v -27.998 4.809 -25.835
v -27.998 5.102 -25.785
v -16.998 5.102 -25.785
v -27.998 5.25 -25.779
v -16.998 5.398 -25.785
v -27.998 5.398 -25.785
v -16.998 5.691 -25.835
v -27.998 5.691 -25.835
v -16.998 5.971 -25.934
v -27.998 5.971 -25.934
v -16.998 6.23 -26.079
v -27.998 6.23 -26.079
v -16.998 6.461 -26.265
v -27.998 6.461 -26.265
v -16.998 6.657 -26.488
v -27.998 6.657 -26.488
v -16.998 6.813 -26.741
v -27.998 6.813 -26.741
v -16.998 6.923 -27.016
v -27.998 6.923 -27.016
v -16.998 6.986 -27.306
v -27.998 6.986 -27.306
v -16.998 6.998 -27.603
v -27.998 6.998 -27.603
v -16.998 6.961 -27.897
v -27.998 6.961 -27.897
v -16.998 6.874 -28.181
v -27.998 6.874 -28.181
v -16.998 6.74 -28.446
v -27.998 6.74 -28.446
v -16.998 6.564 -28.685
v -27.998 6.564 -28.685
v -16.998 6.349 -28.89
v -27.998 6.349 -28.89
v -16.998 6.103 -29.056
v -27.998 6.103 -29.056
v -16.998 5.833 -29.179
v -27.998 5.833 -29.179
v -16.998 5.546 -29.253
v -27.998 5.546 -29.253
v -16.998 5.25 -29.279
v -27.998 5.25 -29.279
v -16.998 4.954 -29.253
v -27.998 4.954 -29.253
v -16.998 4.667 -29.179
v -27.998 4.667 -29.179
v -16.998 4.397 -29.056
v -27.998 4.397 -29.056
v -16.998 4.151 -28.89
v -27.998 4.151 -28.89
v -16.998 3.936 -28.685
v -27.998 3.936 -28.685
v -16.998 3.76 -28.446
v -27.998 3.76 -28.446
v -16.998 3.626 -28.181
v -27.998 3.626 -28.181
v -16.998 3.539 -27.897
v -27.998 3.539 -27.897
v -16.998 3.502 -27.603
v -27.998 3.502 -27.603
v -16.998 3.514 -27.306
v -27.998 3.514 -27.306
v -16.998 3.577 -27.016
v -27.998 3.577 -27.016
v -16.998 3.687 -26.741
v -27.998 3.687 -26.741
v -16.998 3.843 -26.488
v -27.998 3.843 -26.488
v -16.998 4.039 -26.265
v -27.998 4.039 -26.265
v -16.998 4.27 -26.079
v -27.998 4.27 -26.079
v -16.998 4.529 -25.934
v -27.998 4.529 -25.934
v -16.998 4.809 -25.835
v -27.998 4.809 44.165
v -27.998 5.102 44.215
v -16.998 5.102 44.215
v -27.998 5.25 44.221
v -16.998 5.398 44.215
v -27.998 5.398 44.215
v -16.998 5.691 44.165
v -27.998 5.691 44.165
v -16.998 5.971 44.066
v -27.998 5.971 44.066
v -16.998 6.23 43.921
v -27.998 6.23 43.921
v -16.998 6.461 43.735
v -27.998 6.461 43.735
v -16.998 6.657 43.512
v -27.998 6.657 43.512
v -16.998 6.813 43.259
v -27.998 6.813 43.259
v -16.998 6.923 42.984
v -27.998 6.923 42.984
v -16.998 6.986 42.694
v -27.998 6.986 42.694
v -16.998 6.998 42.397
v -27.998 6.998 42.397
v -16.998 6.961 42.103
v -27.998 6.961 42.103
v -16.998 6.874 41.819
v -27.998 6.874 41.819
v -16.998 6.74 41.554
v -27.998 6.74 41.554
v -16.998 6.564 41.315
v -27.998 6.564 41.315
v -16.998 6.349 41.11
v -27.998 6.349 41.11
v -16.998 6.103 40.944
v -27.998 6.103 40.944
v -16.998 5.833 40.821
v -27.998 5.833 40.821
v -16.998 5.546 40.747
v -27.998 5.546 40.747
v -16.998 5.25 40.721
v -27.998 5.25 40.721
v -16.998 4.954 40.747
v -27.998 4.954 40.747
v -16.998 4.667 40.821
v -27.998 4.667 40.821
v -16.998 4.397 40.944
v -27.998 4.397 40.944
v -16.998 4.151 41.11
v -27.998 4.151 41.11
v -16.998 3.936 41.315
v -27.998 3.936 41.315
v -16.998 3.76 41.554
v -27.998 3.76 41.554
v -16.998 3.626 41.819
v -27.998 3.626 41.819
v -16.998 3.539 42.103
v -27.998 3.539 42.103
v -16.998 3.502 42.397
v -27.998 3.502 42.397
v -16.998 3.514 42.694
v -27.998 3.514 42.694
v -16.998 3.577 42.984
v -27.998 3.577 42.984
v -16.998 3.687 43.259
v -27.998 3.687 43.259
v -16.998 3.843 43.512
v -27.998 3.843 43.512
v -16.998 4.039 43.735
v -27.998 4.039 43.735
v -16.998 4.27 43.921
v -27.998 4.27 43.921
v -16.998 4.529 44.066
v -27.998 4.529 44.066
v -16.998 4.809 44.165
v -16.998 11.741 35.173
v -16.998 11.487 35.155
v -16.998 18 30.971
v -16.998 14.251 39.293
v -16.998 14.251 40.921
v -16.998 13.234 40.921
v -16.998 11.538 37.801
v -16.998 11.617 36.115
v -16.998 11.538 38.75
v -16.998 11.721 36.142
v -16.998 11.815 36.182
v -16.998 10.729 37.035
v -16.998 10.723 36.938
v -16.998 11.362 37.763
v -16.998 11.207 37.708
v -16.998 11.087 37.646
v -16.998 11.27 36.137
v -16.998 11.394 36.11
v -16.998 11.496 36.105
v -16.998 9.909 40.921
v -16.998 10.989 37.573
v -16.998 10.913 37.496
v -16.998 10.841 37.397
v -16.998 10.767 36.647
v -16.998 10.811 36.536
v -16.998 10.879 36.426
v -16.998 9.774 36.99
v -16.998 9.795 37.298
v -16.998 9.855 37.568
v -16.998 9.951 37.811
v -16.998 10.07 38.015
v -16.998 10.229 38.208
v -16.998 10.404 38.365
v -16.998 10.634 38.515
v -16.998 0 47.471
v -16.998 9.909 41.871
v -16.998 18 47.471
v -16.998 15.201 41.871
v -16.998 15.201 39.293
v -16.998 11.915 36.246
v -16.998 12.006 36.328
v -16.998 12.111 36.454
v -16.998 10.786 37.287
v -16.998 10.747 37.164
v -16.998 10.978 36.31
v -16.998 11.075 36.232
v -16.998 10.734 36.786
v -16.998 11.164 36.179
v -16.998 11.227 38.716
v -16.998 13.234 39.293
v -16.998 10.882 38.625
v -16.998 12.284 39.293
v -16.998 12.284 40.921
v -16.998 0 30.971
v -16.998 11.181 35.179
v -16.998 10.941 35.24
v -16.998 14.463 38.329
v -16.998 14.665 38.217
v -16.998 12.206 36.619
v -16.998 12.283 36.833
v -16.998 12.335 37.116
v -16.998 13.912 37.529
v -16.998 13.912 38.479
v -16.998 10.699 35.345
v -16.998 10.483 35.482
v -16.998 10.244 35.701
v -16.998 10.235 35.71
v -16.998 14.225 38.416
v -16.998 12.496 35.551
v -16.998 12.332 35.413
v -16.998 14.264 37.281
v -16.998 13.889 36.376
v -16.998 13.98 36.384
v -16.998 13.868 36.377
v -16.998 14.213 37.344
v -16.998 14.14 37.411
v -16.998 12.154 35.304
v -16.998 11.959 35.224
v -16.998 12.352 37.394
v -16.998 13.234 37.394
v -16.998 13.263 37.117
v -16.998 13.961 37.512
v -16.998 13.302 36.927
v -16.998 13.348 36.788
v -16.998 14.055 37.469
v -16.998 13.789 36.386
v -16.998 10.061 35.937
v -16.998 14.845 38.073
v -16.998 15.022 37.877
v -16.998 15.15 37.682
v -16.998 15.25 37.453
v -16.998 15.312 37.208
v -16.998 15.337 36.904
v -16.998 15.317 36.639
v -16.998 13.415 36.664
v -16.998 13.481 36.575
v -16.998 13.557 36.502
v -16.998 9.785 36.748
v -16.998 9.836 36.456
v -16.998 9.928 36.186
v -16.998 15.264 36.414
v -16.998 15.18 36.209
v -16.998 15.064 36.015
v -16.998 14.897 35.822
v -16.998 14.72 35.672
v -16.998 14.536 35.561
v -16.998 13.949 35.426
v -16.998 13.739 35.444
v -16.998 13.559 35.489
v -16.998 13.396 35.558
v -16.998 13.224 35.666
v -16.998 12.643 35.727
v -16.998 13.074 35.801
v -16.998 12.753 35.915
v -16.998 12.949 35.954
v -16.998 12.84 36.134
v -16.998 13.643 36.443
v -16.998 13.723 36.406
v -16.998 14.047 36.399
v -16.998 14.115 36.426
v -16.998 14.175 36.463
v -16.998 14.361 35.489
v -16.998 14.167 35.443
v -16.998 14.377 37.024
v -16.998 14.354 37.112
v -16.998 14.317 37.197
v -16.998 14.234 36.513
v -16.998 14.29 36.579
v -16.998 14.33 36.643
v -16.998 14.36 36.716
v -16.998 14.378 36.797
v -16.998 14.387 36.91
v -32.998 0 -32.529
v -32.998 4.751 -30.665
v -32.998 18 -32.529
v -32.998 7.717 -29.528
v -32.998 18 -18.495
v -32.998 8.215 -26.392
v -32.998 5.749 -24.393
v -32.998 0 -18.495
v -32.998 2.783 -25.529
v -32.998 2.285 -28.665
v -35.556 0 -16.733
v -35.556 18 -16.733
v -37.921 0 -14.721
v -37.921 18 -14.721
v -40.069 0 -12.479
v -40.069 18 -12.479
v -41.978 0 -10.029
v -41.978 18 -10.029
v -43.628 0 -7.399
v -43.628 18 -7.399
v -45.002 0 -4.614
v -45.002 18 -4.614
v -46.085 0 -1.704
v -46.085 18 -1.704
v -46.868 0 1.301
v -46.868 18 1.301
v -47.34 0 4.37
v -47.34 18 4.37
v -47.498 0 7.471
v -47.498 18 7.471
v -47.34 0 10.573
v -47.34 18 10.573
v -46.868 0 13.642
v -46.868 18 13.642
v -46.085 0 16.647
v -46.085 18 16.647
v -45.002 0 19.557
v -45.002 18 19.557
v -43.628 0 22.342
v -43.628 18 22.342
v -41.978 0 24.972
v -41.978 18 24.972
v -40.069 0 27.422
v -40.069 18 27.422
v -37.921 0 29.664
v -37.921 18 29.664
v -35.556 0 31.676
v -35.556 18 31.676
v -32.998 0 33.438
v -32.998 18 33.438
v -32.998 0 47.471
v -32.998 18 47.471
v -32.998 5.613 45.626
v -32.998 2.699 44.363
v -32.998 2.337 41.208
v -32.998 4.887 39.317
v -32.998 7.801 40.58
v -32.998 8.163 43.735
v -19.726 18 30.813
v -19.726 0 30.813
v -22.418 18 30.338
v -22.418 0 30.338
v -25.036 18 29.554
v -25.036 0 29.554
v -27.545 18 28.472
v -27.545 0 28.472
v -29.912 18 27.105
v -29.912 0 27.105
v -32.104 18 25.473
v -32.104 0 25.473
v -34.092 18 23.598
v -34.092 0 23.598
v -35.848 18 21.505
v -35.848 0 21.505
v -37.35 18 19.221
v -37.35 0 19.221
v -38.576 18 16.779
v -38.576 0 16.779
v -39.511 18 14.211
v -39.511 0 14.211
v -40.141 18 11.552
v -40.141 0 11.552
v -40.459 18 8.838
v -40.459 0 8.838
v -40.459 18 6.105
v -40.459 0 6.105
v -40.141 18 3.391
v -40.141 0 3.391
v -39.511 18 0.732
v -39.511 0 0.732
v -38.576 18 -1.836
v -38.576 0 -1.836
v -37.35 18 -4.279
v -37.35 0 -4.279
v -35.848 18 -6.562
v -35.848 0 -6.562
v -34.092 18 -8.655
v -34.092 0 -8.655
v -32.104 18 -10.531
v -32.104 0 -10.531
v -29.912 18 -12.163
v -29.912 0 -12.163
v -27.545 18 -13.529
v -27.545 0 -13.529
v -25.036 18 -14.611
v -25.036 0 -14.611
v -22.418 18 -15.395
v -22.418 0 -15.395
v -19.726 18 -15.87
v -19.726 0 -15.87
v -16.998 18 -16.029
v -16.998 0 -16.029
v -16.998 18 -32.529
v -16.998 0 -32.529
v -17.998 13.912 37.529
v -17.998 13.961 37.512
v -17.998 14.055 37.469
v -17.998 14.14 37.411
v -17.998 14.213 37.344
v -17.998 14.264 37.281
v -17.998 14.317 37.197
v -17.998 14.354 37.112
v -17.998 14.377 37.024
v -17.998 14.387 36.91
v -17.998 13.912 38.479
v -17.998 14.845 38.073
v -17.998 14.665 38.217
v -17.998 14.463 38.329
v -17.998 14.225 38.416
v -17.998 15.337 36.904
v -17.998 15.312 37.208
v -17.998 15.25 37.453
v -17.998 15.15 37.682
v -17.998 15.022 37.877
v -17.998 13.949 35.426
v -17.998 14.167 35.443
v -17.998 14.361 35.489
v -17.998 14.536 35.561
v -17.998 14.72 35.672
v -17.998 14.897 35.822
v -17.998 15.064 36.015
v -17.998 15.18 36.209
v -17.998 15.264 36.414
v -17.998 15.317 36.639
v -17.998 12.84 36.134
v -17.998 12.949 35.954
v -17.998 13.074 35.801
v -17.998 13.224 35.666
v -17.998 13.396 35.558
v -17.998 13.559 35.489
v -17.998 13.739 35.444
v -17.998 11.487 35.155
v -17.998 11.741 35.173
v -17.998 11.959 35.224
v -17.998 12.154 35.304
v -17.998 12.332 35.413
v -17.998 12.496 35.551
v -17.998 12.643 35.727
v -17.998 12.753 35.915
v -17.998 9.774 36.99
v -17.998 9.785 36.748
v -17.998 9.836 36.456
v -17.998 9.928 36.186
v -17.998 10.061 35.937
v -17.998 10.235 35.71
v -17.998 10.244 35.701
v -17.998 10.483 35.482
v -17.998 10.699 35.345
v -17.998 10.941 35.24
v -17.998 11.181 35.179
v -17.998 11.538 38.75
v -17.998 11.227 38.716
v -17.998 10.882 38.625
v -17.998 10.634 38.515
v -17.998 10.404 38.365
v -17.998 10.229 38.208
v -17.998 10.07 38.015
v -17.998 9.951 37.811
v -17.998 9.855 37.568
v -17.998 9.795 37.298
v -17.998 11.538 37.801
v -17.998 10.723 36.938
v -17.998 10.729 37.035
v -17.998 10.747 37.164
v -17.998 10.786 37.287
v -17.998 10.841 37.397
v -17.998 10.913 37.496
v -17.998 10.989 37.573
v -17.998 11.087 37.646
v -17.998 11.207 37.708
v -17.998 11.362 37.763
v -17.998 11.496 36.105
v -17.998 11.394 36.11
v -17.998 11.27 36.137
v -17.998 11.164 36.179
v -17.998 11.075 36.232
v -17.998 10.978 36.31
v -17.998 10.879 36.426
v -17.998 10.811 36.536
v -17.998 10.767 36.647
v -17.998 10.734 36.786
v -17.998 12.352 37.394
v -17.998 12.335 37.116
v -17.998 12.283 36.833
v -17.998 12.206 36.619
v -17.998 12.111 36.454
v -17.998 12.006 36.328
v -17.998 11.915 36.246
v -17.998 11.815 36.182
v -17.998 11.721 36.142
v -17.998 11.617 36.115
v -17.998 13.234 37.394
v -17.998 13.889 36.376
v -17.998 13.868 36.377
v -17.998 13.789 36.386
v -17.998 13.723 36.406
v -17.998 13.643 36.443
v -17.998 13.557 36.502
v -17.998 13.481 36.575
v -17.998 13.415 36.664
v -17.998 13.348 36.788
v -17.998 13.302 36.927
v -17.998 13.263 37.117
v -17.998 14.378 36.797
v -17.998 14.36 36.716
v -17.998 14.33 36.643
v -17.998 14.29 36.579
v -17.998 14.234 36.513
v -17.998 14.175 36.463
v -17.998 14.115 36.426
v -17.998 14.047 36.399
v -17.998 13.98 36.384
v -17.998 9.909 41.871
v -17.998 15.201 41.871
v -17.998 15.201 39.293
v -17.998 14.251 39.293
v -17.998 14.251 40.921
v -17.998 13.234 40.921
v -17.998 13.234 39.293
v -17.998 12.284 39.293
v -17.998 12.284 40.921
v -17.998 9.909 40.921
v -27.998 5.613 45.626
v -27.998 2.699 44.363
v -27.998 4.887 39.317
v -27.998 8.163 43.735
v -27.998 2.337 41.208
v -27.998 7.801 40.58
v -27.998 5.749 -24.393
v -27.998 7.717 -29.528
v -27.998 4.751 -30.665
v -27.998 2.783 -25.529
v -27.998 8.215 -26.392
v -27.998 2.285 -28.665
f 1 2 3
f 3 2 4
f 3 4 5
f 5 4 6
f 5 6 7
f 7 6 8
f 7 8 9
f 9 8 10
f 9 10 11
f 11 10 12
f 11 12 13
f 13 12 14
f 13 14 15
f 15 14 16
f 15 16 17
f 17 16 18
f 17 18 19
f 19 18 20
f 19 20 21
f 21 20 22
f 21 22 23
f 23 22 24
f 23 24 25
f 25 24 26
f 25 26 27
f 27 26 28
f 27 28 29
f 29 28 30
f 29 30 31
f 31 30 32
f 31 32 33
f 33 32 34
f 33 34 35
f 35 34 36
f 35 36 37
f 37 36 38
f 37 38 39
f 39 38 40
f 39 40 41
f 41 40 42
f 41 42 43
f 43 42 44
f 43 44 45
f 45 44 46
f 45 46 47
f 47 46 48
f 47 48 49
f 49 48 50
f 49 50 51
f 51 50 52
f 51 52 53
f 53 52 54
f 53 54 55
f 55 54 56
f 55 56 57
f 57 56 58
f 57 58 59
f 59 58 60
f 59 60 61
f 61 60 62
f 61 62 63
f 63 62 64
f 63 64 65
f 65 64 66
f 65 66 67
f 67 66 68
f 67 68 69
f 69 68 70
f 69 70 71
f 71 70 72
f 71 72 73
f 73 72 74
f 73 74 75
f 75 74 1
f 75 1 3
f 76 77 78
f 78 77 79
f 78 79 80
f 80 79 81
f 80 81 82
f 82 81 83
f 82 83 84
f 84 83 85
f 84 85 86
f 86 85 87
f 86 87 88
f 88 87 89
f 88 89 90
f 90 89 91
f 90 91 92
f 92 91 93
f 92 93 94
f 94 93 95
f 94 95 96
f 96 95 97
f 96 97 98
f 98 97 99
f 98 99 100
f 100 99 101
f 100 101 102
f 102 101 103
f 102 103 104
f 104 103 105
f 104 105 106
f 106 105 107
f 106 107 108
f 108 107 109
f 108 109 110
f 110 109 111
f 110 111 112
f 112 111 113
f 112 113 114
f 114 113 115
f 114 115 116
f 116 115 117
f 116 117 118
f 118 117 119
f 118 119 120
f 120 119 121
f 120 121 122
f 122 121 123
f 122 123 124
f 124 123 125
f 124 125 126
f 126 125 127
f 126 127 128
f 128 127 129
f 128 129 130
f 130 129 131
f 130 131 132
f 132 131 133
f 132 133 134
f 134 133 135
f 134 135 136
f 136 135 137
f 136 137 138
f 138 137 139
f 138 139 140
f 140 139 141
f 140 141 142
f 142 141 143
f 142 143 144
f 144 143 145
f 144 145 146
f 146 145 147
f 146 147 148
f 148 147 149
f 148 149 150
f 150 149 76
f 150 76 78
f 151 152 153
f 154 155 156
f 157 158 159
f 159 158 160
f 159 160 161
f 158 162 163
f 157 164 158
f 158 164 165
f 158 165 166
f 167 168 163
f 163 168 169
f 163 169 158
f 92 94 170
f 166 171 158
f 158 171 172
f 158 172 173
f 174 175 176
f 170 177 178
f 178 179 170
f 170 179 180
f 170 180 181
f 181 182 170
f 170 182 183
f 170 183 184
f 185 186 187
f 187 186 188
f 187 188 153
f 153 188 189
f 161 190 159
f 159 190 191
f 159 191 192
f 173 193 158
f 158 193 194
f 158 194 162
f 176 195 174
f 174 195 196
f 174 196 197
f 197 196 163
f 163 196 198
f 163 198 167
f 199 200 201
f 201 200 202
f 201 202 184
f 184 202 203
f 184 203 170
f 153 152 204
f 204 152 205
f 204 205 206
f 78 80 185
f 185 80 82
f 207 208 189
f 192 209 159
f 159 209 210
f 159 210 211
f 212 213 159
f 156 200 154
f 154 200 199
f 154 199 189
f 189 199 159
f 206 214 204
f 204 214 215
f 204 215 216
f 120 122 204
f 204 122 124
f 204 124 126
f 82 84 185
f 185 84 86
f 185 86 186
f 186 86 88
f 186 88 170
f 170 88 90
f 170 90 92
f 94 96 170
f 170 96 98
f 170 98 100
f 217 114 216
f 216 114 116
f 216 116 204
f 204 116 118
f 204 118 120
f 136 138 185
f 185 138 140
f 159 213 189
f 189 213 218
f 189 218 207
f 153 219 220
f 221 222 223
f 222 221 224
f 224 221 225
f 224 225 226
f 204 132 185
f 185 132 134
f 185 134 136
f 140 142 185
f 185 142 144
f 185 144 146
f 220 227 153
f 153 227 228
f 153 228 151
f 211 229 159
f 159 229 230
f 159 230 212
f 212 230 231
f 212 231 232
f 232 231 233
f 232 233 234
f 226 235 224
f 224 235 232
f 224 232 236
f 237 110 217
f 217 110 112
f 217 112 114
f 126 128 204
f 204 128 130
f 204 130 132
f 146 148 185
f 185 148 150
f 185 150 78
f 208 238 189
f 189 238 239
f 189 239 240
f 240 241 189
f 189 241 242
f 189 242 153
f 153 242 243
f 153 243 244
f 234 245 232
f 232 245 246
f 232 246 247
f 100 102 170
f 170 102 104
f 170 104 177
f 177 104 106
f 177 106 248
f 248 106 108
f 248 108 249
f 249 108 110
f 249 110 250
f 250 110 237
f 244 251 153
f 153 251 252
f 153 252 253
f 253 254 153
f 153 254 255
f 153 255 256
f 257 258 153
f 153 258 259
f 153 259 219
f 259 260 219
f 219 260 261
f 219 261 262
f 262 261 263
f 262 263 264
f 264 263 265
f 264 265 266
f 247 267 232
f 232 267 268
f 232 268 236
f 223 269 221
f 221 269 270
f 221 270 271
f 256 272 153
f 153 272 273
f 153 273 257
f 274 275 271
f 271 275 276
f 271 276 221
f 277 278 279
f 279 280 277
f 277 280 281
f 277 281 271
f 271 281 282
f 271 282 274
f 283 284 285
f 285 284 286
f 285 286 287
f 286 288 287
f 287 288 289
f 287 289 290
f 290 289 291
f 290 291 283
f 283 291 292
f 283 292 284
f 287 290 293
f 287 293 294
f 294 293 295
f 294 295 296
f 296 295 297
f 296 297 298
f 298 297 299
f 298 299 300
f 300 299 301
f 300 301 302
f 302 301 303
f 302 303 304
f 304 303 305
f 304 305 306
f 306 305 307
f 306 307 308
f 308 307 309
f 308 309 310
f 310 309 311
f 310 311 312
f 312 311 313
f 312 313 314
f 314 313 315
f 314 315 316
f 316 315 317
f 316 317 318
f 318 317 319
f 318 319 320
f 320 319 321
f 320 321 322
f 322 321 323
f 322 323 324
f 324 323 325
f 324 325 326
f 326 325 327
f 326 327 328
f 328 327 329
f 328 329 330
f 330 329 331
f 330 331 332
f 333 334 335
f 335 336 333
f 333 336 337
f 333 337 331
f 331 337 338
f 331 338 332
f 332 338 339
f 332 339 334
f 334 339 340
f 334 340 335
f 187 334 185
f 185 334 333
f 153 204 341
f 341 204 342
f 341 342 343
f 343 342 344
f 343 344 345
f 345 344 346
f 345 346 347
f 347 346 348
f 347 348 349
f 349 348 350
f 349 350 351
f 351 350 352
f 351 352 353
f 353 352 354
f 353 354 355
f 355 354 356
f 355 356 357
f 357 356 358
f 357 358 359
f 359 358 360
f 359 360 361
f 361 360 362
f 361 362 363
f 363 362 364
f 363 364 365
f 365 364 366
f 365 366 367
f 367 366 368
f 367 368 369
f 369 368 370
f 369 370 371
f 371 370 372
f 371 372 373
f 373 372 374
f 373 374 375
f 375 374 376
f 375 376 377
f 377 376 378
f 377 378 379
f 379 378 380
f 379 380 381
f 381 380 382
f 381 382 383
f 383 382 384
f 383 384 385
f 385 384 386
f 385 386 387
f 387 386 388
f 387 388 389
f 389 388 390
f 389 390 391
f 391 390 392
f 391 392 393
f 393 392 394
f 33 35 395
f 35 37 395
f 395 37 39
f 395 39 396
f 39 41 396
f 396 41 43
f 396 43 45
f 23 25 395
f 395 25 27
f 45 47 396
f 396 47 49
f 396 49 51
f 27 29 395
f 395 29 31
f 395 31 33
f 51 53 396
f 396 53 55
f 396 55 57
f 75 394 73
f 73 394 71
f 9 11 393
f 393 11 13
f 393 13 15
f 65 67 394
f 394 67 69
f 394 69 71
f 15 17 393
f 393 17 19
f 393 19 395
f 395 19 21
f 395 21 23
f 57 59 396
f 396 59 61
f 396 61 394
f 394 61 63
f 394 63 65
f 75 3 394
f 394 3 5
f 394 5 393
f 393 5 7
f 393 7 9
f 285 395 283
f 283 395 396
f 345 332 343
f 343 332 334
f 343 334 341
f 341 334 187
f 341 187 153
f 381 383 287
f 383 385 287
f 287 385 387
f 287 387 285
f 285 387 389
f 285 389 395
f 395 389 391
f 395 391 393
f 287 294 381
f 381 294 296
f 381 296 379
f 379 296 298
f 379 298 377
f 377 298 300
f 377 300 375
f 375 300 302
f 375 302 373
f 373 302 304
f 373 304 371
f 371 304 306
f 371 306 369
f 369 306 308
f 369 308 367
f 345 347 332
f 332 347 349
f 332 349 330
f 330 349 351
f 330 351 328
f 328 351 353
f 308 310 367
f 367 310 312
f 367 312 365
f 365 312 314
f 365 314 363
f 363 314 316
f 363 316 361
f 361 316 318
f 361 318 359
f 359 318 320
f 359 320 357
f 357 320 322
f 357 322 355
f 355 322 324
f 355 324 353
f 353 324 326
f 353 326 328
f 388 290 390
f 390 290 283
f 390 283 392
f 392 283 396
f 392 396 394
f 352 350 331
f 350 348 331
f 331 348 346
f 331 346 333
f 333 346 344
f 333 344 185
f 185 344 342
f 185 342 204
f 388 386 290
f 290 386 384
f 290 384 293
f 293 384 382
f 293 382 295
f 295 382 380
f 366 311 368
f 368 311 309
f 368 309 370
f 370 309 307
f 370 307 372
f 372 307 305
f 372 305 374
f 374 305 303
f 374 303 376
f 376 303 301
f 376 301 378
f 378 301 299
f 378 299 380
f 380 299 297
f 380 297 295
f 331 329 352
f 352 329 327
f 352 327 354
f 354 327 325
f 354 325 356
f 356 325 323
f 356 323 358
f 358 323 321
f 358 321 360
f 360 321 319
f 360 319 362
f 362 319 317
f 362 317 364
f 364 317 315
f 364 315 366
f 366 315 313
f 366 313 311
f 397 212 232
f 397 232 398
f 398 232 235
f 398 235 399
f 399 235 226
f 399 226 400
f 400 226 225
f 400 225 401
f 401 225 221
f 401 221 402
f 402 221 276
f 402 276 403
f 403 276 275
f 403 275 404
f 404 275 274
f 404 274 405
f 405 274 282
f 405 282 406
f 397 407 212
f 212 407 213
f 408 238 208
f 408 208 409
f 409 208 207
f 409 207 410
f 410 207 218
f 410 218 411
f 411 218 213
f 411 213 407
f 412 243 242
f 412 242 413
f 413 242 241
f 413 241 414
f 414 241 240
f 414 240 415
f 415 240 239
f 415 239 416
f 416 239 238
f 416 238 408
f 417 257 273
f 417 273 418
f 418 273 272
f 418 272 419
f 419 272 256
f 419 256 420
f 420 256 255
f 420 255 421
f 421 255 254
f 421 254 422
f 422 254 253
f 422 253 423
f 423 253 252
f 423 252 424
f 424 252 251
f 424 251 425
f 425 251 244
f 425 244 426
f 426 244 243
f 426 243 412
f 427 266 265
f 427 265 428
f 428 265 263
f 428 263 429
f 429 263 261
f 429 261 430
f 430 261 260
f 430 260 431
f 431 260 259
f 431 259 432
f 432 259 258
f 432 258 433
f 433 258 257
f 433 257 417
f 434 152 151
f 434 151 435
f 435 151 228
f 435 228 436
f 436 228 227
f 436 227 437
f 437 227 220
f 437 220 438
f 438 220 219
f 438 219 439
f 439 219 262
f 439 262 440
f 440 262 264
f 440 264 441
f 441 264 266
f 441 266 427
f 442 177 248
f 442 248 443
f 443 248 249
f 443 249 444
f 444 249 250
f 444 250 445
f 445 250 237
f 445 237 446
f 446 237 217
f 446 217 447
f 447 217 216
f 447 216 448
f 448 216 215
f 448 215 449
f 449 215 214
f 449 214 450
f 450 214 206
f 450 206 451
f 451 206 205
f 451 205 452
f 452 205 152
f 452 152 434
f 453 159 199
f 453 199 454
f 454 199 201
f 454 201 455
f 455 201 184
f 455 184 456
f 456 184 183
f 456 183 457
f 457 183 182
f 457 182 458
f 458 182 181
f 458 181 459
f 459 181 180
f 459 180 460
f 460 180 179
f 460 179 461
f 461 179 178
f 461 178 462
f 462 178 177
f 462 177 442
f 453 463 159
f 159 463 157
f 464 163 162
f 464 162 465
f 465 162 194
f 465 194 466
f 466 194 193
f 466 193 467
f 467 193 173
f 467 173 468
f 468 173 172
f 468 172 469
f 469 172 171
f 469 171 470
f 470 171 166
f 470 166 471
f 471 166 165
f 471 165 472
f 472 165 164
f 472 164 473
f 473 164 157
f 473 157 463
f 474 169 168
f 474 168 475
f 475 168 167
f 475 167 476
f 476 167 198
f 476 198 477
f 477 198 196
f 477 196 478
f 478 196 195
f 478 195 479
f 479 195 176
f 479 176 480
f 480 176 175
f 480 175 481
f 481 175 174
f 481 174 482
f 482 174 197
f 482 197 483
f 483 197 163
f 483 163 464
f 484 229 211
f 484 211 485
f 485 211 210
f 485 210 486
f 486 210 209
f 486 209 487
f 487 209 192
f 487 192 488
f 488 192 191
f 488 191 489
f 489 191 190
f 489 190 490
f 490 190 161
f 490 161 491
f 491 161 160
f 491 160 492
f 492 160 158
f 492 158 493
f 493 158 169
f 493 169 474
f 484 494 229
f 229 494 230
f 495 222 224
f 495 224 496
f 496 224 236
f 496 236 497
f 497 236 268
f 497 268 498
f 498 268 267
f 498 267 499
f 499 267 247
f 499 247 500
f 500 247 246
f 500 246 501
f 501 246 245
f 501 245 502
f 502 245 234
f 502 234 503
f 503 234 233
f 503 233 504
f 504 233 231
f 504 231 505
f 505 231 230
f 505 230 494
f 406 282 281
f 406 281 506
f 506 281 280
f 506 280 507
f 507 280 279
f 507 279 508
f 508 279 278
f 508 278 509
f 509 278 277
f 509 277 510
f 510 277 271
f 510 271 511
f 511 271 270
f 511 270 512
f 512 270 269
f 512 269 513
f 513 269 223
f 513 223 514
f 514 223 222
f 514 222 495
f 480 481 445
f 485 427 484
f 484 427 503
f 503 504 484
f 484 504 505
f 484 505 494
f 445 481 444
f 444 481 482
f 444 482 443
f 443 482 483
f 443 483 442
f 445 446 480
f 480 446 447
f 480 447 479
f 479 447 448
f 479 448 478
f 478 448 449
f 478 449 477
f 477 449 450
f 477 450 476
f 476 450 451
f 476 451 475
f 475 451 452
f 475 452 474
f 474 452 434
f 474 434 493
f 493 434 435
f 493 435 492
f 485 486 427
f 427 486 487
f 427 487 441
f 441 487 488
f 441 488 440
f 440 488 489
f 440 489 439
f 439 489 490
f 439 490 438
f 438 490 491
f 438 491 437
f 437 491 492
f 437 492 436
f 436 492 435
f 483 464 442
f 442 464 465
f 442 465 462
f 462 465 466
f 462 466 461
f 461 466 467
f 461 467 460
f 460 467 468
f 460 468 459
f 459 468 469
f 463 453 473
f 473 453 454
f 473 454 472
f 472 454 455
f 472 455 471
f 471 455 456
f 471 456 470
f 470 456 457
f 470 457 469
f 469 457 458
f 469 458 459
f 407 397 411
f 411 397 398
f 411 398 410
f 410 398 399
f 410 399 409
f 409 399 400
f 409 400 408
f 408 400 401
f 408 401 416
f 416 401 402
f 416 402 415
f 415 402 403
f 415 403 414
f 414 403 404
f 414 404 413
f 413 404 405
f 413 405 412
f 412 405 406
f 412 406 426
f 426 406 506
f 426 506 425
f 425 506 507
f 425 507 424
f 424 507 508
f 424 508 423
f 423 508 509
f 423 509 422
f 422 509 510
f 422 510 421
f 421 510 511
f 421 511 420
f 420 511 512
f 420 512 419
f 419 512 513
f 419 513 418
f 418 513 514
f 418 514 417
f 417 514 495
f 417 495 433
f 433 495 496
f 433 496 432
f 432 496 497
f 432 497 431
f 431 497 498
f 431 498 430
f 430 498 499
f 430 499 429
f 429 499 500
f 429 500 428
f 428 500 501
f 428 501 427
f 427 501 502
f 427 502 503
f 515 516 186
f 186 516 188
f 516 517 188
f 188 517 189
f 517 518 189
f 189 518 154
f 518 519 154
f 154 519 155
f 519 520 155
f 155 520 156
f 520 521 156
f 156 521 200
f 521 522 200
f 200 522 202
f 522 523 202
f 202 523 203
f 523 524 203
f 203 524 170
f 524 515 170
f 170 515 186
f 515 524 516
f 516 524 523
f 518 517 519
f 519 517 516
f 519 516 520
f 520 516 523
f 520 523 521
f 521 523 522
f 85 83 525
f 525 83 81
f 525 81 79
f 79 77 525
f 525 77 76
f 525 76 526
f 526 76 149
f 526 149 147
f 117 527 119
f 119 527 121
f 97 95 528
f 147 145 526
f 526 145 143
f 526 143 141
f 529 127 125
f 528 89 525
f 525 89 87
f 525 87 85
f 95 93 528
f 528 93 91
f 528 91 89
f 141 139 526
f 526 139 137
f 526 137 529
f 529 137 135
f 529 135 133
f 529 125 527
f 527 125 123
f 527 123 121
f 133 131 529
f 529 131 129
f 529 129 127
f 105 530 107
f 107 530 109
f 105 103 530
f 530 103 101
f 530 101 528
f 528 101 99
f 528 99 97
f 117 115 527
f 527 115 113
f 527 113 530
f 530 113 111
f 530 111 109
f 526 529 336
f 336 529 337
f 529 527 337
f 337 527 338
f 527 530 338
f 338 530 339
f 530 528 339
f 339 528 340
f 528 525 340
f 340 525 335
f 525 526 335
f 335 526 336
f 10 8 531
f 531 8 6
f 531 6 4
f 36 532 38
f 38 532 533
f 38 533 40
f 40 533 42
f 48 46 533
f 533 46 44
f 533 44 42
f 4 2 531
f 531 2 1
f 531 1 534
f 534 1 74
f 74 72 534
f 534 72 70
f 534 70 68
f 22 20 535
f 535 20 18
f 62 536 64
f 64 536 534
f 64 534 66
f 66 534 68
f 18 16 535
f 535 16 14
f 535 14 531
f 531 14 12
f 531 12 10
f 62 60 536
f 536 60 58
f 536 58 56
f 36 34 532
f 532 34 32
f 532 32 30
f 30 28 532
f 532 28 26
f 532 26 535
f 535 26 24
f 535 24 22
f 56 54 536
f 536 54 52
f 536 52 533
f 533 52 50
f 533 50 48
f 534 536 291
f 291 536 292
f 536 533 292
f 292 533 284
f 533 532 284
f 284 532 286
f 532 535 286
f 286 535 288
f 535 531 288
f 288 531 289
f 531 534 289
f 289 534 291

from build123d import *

# Parameters (mm, degrees)
BOSS_EXTRUDE1_DEPTH = 18
SKETCH2_R           = 1.75
CUT_EXTRUDE1_DEPTH  = 31.5
CUT_EXTRUDE2_DEPTH  = 1
CUT_EXTRUDE3_DEPTH  = 5


with BuildPart() as part:
    # Sketch1 → Boss-Extrude1 (new body)
    with BuildSketch(Plane(origin=(0, 0, 0), x_dir=(1, 0, 0), z_dir=(0, 1, 0))):
        with BuildLine():
            Line((-16.998275301, 32.528571429), (-32.998275301, 32.528571429))
            Line((-32.998275301, 32.528571429), (-32.998275301, 18.494895774))
            ThreePointArc((-32.998275301, 18.494895774), (-47.498275301, -7.471428571), (-32.998275301, -33.437752917))
            Line((-32.998275301, -33.437752917), (-32.998275301, -47.471428571))
            Line((-32.998275301, -47.471428571), (-16.998275301, -47.471428571))
            Line((-16.998275301, -47.471428571), (-16.998275301, -30.971428571))
            ThreePointArc((-16.998275301, -30.971428571), (-40.498275301, -7.471428571), (-16.998275301, 16.028571429))
            Line((-16.998275301, 16.028571429), (-16.998275301, 32.528571429))
        make_face()
    extrude(amount=BOSS_EXTRUDE1_DEPTH)

    # Sketch2 → Cut-Extrude1 (cut, through all)
    with BuildSketch(Plane(origin=(-16.998275301, 0, 0), x_dir=(0, 0, -1), z_dir=(1, 0, 0))):
        with Locations((-42.471428571, 5.25)):
            Circle(SKETCH2_R)
        with Locations((27.528571429, 5.25)):
            Circle(SKETCH2_R)
    extrude(amount=-CUT_EXTRUDE1_DEPTH, mode=Mode.SUBTRACT)

    # Sketch3 → Cut-Extrude2 (cut)
    with BuildSketch(Plane(origin=(-16.998275301, 0, 0), x_dir=(0, 0, -1), z_dir=(1, 0, 0))):
        Polygon((-41.871148795, 15.201025034), (-39.293157342, 15.201025034), (-39.293157342, 14.251238709), (-40.92136247, 14.251238709), (-40.92136247, 13.233610504), (-39.293157342, 13.233610504), (-39.293157342, 12.283824179), (-40.92136247, 12.283824179), (-40.92136247, 9.909358367), (-41.871148795, 9.909358367), align=None)
        with BuildLine():
            Line((-37.529268453, 13.912029308), (-38.479054777, 13.912029308))
            add(Edge.make_bspline(
                [(-38.479054777, 13.912029308), (-38.472348925, 13.959505738), (-38.459202545, 14.052580134), (-38.427745016, 14.187328674), (-38.390118416, 14.315146885), (-38.34314353, 14.435629995), (-38.288049629, 14.548992623), (-38.225396959, 14.655623774), (-38.154508221, 14.755065768), (-38.100171252, 14.814970019), (-38.073063525, 14.844855162)],
                knots=[0, 0, 0, 0, 0.000143778, 0.000281867, 0.000414671, 0.000543215, 0.000669322, 0.0007924, 0.000913902, 0.001034861, 0.001034861, 0.001034861, 0.001034861], degree=3))
            add(Edge.make_bspline(
                [(-38.073063525, 14.844855162), (-38.033964221, 14.884286443), (-37.956903602, 14.962001353), (-37.82812627, 15.061545568), (-37.693143844, 15.147694317), (-37.549249192, 15.215993668), (-37.398681424, 15.27127408), (-37.240243172, 15.308406058), (-37.074581872, 15.333043453), (-36.961538875, 15.335470322), (-36.903851118, 15.336708795)],
                knots=[0, 0, 0, 0, 0.000166428, 0.000328012, 0.000487119, 0.000645947, 0.000804887, 0.000967376, 0.001133328, 0.001306272, 0.001306272, 0.001306272, 0.001306272], degree=3))
            add(Edge.make_bspline(
                [(-36.903851118, 15.336708795), (-36.852563734, 15.335498), (-36.751743072, 15.333117822), (-36.603562067, 15.314011042), (-36.462283879, 15.280499879), (-36.326415158, 15.236684784), (-36.197954088, 15.177067025), (-36.07406541, 15.107863497), (-35.958210577, 15.022982493), (-35.850118512, 14.927075501), (-35.750815335, 14.8233427), (-35.664818348, 14.712460867), (-35.590885195, 14.597391911), (-35.529974057, 14.477179826), (-35.483141668, 14.3516212), (-35.450638602, 14.221441367), (-35.429364556, 14.08692758), (-35.427245105, 13.99550037), (-35.426170162, 13.949130336)],
                knots=[0, 0, 0, 0, 0.000153836, 0.00030241, 0.000447173, 0.000588968, 0.00072986, 0.000871333, 0.001014032, 0.001159723, 0.001304436, 0.001444171, 0.001580024, 0.001714184, 0.00184768, 0.001981114, 0.002116187, 0.002255197, 0.002255197, 0.002255197, 0.002255197], degree=3))
            add(Edge.make_bspline(
                [(-35.426170162, 13.949130336), (-35.428376009, 13.89170491), (-35.432718642, 13.778651902), (-35.468353097, 13.613190424), (-35.524130708, 13.454979724), (-35.604706892, 13.306233407), (-35.705447645, 13.167356277), (-35.829053175, 13.042991412), (-35.972002875, 12.931188942), (-36.079317119, 12.87110628), (-36.134269788, 12.840339604)],
                knots=[0, 0, 0, 0, 0.00017212, 0.000338852, 0.000505492, 0.00067385, 0.000844528, 0.001018431, 0.001198237, 0.00138694, 0.00138694, 0.00138694, 0.00138694], degree=3))
            add(Edge.make_bspline(
                [(-36.134269788, 12.840339604), (-36.096551119, 12.827955771), (-36.022435626, 12.803622094), (-35.917089364, 12.755697192), (-35.816917106, 12.703323219), (-35.723643783, 12.642478468), (-35.636341679, 12.575623232), (-35.555542998, 12.502186007), (-35.480764986, 12.422326922), (-35.413228364, 12.335606781), (-35.353286974, 12.243412505), (-35.299504756, 12.147873726), (-35.255238993, 12.047541582), (-35.21774038, 11.943561934), (-35.189191072, 11.835000267), (-35.169089807, 11.722277248), (-35.157470783, 11.605650007), (-35.155698684, 11.526635122), (-35.154802641, 11.486682085)],
                knots=[0, 0, 0, 0, 0.000119012, 0.000233852, 0.000346714, 0.000457856, 0.00056747, 0.000676282, 0.000785032, 0.000895296, 0.001005549, 0.001114686, 0.001223822, 0.001334132, 0.001445978, 0.001560132, 0.001677317, 0.001797176, 0.001797176, 0.001797176, 0.001797176], degree=3))
            add(Edge.make_bspline(
                [(-35.154802641, 11.486682085), (-35.156619041, 11.427967343), (-35.160200611, 11.31219383), (-35.182970562, 11.141671293), (-35.225364107, 10.979093204), (-35.281135164, 10.822588857), (-35.355527701, 10.674178666), (-35.443075211, 10.53045682), (-35.55068869, 10.396407552), (-35.670282595, 10.268486948), (-35.803098598, 10.152187262), (-35.947092752, 10.051360668), (-36.09909875, 9.964833512), (-36.260078289, 9.8945883), (-36.429975443, 9.840491454), (-36.608411526, 9.801387759), (-36.796136276, 9.777463472), (-36.924273105, 9.774955464), (-36.989713498, 9.773674607)],
                knots=[0, 0, 0, 0, 0.000176169, 0.00034737, 0.00051474, 0.000679386, 0.000844836, 0.001011921, 0.001183269, 0.001359492, 0.001536793, 0.001711778, 0.001885991, 0.002060677, 0.00223768, 0.002420033, 0.00260805, 0.002804296, 0.002804296, 0.002804296, 0.002804296], degree=3))
            add(Edge.make_bspline(
                [(-36.989713498, 9.773674607), (-37.051619054, 9.775025054), (-37.172667177, 9.777665676), (-37.349725391, 9.800521596), (-37.518002464, 9.837390049), (-37.677927841, 9.889359191), (-37.828882784, 9.956754287), (-37.972236212, 10.037006724), (-38.105127537, 10.134745277), (-38.229037432, 10.245557842), (-38.341217201, 10.369883248), (-38.441479496, 10.504841559), (-38.527613517, 10.650945966), (-38.599972501, 10.80757225), (-38.657990763, 10.974995181), (-38.703755398, 11.152874295), (-38.735722744, 11.341557113), (-38.745458467, 11.471374906), (-38.750422299, 11.537563496)],
                knots=[0, 0, 0, 0, 0.000185653, 0.000363021, 0.000534566, 0.000701839, 0.000866512, 0.001029812, 0.001193709, 0.001360353, 0.001527707, 0.001695195, 0.001863902, 0.002035591, 0.002211932, 0.002394731, 0.002586078, 0.002785121, 0.002785121, 0.002785121, 0.002785121], degree=3))
            Line((-38.750422299, 11.537563496), (-37.800635974, 11.537563496))
            add(Edge.make_bspline(
                [(-37.800635974, 11.537563496), (-37.794617277, 11.504283004), (-37.782894287, 11.439460519), (-37.760029312, 11.345611971), (-37.730233061, 11.258983964), (-37.695781181, 11.178806552), (-37.658567964, 11.104027033), (-37.613605499, 11.037407199), (-37.564188399, 10.977138049), (-37.492879164, 10.905489419), (-37.3909377, 10.831873443), (-37.253282951, 10.767897658), (-37.100155079, 10.730399988), (-36.993103425, 10.725825387), (-36.937772058, 10.723460932)],
                knots=[0, 0, 0, 0, 0.000101453, 0.000197607, 0.000289457, 0.000375893, 0.000459333, 0.000539595, 0.000616416, 0.00069287, 0.00084235, 0.000990791, 0.001145821, 0.001311674, 0.001311674, 0.001311674, 0.001311674], degree=3))
            add(Edge.make_bspline(
                [(-36.937772058, 10.723460932), (-36.90841128, 10.72396442), (-36.850900082, 10.724950642), (-36.766424697, 10.735881586), (-36.685949998, 10.753884861), (-36.609326097, 10.778350644), (-36.536065202, 10.809020032), (-36.467567036, 10.848566373), (-36.402435434, 10.89454464), (-36.341378437, 10.946236417), (-36.284960514, 11.002561951), (-36.238017483, 11.06493291), (-36.19511495, 11.128312952), (-36.163383928, 11.196848623), (-36.135580716, 11.266851971), (-36.11856373, 11.340863899), (-36.105714684, 11.417331835), (-36.104967949, 11.469663134), (-36.104588966, 11.49622235)],
                knots=[0, 0, 0, 0, 8.804e-05, 0.00017245, 0.000255004, 0.000335125, 0.000413489, 0.000492771, 0.000571884, 0.000652369, 0.000732575, 0.000810392, 0.000886249, 0.00096163, 0.001036443, 0.001111772, 0.00118898, 0.001268546, 0.001268546, 0.001268546, 0.001268546], degree=3))
            add(Edge.make_bspline(
                [(-36.104588966, 11.49622235), (-36.105595096, 11.525269377), (-36.10759807, 11.583095353), (-36.123962582, 11.667480206), (-36.149805605, 11.748651634), (-36.18570472, 11.82625017), (-36.233643988, 11.899989803), (-36.290211789, 11.971349973), (-36.35986473, 12.036616511), (-36.436283336, 12.101130505), (-36.524898897, 12.15736725), (-36.621395711, 12.209265504), (-36.728309865, 12.250560491), (-36.843031489, 12.287444563), (-36.967730649, 12.314384117), (-37.101633011, 12.333944858), (-37.244522568, 12.348504799), (-37.343018198, 12.350593662), (-37.393584692, 12.35166606)],
                knots=[0, 0, 0, 0, 8.7084e-05, 0.000173364, 0.000256838, 0.000342201, 0.000428949, 0.000520167, 0.000614623, 0.000714788, 0.000819753, 0.000928812, 0.001042981, 0.001163003, 0.001290052, 0.001425126, 0.001568892, 0.001720568, 0.001720568, 0.001720568, 0.001720568], degree=3))
            Line((-37.393584692, 12.35166606), (-37.393584692, 13.233610504))
            add(Edge.make_bspline(
                [(-37.393584692, 13.233610504), (-37.330626399, 13.238972234), (-37.212843901, 13.249002968), (-37.049355478, 13.272460189), (-36.911719301, 13.303814627), (-36.796627281, 13.34164206), (-36.701062242, 13.390222338), (-36.617577152, 13.44385282), (-36.545675843, 13.506136787), (-36.484909592, 13.57521694), (-36.436298482, 13.649402546), (-36.40189437, 13.727540541), (-36.379175692, 13.80721324), (-36.377023099, 13.861706965), (-36.375956487, 13.888708661)],
                knots=[0, 0, 0, 0, 0.000189544, 0.000354599, 0.000494992, 0.000612655, 0.000716948, 0.000815736, 0.000909673, 0.001001315, 0.001090992, 0.001174513, 0.001256793, 0.001337606, 0.001337606, 0.001337606, 0.001337606], degree=3))
            add(Edge.make_bspline(
                [(-36.375956487, 13.888708661), (-36.377796698, 13.923159894), (-36.3813884, 13.990401408), (-36.409283508, 14.086638178), (-36.457706253, 14.172425283), (-36.522632653, 14.247582201), (-36.601747728, 14.310358892), (-36.694484465, 14.355933699), (-36.798830471, 14.382710933), (-36.872243509, 14.38548683), (-36.910211295, 14.38692247)],
                knots=[0, 0, 0, 0, 0.000103264, 0.00020155, 0.000297405, 0.00039663, 0.000497784, 0.000598286, 0.000704469, 0.000818208, 0.000818208, 0.000818208, 0.000818208], degree=3))
            add(Edge.make_bspline(
                [(-36.910211295, 14.38692247), (-36.944624824, 14.385228566), (-37.012911806, 14.381867343), (-37.112767812, 14.356780059), (-37.20759775, 14.314548739), (-37.295437959, 14.256314238), (-37.375020447, 14.18637707), (-37.440334709, 14.103551012), (-37.494660015, 14.012798316), (-37.517687082, 13.945750658), (-37.529268453, 13.912029308)],
                knots=[0, 0, 0, 0, 0.000103172, 0.000204725, 0.000306758, 0.000413189, 0.000519795, 0.000623097, 0.000728547, 0.000835248, 0.000835248, 0.000835248, 0.000835248], degree=3))
        make_face()
    extrude(amount=-CUT_EXTRUDE2_DEPTH, mode=Mode.SUBTRACT)

    # Sketch4 → Cut-Extrude3 (cut)
    with BuildSketch(Plane.ZY.offset(32.998275301)):
        Polygon((-25.528765418, 2.783401278), (-24.392531269, 5.748583447), (-26.39233728, 8.215182169), (-29.528377439, 7.716598722), (-30.664611588, 4.751416553), (-28.664805577, 2.284817831), align=None)
        Polygon((44.362800811, 2.699305117), (45.626081257, 5.612628966), (43.734709018, 8.163323849), (40.580056332, 7.800694883), (39.316775886, 4.887371034), (41.208148125, 2.336676151), align=None)
    extrude(amount=-CUT_EXTRUDE3_DEPTH, mode=Mode.SUBTRACT)


solid = part.part
